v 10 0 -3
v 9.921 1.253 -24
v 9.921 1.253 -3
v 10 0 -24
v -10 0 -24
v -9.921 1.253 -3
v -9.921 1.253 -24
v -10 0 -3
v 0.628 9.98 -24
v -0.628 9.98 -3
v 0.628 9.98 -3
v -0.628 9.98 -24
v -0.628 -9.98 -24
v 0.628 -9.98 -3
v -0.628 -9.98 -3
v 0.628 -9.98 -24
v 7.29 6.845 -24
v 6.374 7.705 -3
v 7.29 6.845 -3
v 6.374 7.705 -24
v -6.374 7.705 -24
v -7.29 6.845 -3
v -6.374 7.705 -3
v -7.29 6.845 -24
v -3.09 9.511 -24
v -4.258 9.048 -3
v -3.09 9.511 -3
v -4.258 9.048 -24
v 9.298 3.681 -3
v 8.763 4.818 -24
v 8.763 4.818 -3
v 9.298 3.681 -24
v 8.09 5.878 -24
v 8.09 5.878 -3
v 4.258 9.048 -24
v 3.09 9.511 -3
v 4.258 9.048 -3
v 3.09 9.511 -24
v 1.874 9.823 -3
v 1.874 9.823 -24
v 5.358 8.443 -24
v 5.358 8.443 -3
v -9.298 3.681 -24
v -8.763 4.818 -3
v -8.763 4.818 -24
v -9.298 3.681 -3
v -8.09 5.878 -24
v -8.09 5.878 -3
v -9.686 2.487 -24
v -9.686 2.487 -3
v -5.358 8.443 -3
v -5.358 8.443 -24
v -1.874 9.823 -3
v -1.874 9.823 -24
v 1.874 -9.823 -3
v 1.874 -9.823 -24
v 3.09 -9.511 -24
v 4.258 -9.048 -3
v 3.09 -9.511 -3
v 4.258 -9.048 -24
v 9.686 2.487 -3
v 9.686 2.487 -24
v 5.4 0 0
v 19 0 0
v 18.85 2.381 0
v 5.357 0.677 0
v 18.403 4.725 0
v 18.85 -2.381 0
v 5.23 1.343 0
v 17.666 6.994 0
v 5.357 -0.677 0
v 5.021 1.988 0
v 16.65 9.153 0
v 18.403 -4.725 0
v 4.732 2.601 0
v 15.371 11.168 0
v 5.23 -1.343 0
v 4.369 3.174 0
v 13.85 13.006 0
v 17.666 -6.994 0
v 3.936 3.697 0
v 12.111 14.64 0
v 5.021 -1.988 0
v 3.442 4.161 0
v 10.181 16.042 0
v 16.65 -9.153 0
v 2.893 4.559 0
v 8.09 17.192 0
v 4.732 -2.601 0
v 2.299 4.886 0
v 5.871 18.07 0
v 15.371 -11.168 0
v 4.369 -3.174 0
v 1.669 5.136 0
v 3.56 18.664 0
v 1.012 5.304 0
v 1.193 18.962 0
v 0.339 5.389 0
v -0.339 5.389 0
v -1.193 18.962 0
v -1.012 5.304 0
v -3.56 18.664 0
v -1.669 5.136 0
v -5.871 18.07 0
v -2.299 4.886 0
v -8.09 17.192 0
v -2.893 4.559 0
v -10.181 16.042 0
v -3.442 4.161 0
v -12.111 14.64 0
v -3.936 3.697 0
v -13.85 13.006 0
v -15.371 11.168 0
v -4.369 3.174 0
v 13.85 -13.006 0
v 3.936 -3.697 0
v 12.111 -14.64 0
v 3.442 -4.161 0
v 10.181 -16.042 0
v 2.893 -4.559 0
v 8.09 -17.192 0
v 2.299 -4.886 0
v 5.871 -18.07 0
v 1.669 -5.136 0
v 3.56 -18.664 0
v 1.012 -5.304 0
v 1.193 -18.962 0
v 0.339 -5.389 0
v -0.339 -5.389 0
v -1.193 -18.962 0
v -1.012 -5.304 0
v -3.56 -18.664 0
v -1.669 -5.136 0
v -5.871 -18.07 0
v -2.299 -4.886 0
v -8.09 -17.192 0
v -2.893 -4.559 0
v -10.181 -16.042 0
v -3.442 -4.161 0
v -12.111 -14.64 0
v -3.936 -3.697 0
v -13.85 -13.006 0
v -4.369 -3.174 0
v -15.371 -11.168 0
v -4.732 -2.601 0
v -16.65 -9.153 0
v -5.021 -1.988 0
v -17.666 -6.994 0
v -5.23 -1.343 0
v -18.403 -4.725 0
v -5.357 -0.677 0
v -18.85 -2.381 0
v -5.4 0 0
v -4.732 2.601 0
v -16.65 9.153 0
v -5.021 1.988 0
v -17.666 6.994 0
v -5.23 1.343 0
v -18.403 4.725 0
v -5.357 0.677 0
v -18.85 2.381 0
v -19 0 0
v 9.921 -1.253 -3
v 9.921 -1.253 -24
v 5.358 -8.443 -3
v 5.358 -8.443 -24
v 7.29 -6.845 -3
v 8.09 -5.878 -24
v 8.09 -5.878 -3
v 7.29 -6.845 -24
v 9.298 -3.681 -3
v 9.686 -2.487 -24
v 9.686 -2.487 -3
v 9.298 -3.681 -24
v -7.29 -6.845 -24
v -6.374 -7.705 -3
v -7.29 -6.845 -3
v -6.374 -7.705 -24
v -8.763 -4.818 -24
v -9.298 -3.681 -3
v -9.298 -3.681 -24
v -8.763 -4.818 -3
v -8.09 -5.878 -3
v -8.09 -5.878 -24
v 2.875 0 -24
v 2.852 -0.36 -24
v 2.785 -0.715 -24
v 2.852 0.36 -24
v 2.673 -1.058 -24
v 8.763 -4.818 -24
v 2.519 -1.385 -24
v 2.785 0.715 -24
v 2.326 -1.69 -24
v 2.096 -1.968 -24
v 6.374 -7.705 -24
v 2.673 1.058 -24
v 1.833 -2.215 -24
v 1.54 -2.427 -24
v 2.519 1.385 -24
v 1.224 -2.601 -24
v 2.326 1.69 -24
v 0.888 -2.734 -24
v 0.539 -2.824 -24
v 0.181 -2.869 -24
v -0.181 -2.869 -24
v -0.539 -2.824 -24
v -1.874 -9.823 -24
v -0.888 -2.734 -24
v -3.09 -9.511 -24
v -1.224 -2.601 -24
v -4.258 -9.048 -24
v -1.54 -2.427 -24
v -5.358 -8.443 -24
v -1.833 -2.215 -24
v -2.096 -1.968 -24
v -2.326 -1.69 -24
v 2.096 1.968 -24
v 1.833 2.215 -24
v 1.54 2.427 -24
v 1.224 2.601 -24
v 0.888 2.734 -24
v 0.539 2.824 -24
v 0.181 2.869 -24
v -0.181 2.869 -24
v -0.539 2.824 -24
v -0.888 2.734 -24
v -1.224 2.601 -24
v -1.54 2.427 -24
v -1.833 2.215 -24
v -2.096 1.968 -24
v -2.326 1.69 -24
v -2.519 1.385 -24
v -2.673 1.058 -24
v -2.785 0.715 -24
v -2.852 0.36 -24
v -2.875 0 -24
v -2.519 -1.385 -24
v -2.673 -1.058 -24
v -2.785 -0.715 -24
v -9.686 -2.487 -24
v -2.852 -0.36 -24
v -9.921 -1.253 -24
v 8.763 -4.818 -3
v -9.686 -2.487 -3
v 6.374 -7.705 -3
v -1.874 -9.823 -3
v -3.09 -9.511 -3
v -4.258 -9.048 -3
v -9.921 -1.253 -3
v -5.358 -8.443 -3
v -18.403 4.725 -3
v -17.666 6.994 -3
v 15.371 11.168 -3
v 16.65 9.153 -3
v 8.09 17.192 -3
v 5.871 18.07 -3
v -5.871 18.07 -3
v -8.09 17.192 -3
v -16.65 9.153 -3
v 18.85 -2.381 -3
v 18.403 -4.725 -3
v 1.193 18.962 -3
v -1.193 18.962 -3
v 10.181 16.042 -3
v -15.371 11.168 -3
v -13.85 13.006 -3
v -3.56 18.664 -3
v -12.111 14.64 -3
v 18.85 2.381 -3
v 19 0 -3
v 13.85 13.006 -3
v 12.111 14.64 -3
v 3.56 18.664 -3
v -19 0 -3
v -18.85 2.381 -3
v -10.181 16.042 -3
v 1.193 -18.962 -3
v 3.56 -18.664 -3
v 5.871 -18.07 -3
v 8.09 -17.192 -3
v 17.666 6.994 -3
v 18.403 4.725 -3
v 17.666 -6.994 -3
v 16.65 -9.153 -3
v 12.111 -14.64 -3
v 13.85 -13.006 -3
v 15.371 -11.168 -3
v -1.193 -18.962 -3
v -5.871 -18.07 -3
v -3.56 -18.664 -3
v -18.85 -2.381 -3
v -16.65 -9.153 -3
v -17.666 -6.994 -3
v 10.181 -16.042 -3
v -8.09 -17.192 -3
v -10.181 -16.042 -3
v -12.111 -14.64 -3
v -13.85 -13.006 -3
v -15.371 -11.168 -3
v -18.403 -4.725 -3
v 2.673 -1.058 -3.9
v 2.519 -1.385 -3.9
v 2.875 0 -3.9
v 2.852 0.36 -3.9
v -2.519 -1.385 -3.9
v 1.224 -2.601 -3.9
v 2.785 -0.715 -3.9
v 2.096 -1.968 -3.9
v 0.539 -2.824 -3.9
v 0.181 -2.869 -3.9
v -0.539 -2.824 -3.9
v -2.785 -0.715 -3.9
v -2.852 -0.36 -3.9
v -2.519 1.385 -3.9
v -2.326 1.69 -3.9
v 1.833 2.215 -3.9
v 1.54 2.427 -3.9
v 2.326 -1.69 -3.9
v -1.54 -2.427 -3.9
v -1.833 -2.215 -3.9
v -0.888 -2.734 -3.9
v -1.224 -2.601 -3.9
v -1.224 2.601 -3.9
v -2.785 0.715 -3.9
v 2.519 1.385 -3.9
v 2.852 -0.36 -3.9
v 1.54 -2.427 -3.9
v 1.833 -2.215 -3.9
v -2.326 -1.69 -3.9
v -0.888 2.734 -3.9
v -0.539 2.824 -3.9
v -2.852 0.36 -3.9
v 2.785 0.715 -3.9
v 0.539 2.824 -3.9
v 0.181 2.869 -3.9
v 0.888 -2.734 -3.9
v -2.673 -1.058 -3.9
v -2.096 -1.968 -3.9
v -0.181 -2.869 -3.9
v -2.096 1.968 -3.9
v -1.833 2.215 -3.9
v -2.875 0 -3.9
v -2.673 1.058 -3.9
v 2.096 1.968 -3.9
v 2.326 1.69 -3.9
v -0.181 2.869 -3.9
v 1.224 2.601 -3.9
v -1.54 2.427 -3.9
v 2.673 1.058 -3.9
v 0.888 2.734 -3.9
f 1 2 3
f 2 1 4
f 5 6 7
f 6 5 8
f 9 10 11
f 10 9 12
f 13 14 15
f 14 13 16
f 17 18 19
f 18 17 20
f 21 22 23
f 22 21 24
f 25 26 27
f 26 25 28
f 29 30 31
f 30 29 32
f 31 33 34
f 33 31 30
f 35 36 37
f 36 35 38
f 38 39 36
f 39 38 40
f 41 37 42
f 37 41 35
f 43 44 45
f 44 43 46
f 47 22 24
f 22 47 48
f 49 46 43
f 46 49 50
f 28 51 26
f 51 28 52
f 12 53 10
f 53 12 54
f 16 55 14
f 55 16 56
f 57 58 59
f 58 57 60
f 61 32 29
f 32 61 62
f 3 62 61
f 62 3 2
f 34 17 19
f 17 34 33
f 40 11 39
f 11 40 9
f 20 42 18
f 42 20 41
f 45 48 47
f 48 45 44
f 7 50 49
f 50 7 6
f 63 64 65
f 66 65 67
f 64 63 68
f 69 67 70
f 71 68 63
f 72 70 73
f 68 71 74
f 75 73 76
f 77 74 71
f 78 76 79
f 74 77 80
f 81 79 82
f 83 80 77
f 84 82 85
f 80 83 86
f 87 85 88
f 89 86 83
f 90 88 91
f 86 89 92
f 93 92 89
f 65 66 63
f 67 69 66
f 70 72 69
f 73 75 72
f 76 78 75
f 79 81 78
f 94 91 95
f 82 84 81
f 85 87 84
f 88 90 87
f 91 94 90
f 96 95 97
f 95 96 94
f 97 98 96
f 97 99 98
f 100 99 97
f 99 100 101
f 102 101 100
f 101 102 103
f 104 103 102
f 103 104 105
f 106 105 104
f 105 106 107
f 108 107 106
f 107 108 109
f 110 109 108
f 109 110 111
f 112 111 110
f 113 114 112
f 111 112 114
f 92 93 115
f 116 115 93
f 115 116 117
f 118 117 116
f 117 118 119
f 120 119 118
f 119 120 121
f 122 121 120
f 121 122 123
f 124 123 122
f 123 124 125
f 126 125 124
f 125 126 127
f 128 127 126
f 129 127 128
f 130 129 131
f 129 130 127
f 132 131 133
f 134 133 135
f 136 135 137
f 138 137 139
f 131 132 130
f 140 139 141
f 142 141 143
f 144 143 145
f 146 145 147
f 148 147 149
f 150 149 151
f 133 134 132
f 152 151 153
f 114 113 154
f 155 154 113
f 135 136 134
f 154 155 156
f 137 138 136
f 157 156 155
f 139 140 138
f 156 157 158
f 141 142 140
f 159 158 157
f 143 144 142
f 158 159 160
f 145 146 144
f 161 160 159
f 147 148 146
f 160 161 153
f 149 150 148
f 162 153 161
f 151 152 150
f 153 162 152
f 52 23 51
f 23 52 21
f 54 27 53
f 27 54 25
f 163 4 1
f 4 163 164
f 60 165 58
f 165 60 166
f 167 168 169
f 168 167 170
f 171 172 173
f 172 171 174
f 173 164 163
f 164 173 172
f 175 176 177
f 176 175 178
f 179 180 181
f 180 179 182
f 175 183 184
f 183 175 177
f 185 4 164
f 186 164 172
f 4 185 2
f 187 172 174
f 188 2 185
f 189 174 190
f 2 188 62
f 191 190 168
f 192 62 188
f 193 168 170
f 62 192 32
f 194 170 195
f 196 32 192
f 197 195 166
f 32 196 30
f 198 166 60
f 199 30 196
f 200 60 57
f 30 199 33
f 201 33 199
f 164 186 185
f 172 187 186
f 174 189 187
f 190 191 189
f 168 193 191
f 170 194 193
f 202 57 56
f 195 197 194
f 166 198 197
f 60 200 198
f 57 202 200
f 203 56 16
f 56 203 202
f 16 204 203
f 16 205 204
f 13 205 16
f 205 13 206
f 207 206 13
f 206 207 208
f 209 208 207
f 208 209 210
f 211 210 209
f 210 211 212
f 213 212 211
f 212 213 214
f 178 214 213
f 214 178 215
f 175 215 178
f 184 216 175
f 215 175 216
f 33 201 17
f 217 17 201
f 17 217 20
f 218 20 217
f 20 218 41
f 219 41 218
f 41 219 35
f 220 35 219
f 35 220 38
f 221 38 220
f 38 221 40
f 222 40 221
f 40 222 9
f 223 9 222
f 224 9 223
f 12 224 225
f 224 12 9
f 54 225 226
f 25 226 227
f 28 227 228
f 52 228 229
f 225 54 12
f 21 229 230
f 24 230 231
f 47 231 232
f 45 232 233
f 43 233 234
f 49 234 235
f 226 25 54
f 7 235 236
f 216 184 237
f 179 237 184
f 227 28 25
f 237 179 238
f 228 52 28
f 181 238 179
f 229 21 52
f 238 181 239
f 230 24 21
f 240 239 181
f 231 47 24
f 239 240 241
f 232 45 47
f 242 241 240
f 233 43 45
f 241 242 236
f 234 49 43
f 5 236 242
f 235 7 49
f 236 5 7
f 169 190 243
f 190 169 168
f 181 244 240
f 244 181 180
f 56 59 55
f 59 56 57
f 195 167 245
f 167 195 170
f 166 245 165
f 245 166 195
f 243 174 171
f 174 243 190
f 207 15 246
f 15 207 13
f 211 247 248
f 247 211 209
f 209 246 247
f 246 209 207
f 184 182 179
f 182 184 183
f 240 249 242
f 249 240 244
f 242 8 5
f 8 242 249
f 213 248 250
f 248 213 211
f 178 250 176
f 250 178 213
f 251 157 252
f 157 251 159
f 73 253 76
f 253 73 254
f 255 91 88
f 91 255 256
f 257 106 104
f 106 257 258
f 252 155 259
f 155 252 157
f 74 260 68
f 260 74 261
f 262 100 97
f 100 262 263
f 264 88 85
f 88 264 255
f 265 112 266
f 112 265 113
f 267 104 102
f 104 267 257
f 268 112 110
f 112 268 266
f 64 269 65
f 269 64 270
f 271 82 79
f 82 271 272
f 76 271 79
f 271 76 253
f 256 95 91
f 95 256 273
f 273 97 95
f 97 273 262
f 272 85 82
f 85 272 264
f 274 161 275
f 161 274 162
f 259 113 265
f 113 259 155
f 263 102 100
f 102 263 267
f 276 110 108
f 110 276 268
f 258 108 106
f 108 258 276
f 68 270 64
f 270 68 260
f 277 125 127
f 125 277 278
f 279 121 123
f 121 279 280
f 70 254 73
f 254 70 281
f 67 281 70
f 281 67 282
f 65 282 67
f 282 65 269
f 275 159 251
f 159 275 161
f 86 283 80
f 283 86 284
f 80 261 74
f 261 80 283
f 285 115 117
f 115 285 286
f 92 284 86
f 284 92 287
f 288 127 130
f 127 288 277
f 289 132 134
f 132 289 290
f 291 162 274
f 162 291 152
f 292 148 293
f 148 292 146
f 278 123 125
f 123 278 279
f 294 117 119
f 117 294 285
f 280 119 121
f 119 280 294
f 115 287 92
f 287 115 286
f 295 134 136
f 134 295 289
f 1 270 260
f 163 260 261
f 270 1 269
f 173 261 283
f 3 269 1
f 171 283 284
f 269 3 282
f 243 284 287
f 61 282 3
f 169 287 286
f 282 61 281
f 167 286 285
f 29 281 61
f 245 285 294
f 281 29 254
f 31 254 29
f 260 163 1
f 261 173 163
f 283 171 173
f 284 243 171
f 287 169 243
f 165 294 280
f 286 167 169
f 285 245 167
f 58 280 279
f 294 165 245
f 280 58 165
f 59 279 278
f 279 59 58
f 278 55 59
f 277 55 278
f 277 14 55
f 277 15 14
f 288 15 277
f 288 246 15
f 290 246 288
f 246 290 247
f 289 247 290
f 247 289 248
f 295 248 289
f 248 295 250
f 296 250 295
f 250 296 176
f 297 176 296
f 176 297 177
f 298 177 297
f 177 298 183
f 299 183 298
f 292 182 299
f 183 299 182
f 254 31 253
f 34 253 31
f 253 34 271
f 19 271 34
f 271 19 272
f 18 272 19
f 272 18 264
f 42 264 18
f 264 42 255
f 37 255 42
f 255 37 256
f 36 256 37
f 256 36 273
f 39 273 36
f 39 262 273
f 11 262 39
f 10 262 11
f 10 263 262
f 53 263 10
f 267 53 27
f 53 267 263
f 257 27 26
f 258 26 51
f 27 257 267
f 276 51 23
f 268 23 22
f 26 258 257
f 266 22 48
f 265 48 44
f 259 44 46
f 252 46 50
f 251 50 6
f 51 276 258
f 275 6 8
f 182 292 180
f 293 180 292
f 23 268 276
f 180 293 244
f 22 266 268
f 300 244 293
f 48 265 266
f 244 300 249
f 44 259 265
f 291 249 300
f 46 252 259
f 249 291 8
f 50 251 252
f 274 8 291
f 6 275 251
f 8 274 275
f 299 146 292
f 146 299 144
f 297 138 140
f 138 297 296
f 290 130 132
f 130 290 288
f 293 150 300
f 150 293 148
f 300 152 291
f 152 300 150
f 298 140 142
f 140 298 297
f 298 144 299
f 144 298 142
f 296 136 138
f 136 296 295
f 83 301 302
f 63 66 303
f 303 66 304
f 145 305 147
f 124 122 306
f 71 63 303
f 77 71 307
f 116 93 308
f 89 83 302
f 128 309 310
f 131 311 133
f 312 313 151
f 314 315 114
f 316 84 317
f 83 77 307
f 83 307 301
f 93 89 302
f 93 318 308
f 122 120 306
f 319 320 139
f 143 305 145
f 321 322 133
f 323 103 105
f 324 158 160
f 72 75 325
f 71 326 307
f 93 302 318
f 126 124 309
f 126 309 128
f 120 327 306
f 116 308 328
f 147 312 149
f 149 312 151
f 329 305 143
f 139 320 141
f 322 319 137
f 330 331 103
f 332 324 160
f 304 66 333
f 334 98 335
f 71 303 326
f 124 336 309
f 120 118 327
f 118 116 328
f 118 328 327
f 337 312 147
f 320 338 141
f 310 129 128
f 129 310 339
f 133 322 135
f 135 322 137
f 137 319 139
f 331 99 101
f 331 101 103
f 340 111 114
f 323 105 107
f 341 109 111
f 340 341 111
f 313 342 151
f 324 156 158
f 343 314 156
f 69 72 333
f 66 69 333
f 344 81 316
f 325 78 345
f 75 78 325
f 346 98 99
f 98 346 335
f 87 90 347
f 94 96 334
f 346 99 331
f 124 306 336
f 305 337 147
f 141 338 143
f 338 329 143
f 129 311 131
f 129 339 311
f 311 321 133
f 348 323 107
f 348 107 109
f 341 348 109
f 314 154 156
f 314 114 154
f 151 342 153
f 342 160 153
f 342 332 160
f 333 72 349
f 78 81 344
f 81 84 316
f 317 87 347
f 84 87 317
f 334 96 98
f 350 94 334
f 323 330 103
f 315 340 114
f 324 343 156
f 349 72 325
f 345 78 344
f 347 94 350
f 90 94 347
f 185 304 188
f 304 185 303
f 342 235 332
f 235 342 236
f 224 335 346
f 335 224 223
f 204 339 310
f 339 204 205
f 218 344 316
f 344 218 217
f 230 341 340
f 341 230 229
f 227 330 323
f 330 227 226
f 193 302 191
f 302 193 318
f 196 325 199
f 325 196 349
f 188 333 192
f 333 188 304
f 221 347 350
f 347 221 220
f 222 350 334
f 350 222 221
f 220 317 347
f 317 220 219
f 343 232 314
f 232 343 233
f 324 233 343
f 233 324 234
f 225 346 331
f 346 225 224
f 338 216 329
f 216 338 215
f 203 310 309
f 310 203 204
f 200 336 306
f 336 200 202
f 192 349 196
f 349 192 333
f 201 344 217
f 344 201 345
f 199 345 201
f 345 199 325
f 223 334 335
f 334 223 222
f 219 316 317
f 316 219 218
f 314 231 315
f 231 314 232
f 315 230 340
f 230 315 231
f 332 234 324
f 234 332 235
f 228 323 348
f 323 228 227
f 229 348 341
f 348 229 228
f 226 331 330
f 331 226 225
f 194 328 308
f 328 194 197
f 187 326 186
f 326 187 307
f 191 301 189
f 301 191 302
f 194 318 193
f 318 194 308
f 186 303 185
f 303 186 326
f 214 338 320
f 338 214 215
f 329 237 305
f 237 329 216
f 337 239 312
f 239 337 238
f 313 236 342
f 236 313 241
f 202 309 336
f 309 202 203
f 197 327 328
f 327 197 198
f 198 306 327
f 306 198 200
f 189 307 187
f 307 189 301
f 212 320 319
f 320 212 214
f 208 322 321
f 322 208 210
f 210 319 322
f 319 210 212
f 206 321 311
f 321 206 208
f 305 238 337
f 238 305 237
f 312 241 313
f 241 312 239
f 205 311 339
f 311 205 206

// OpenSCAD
$fn = 50;


difference() {
	union() {
		translate(v = [0, 0, -24.0000000000]) {
			cylinder(h = 24, r = 10.0000000000);
		}
		translate(v = [0, 0, -3.0000000000]) {
			cylinder(h = 3, r = 19.0000000000);
		}
	}
	union() {
		translate(v = [0, 0, 0]) {
			rotate(a = [0, 0, 0]) {
				difference() {
					union() {
						#translate(v = [0, 0, -24.0000000000]) {
							cylinder(h = 24, r = 2.6000000000);
						}
						#translate(v = [0, 0, -3.9000000000]) {
							cylinder(h = 3.9000000000, r1 = 2.8750000000, r2 = 5.4000000000);
						}
						#translate(v = [0, 0, -24.0000000000]) {
							cylinder(h = 24, r = 2.8750000000);
						}
						#translate(v = [0, 0, -24.0000000000]) {
							cylinder(h = 24, r = 2.6000000000);
						}
					}
					union();
				}
			}
		}
	}
}
